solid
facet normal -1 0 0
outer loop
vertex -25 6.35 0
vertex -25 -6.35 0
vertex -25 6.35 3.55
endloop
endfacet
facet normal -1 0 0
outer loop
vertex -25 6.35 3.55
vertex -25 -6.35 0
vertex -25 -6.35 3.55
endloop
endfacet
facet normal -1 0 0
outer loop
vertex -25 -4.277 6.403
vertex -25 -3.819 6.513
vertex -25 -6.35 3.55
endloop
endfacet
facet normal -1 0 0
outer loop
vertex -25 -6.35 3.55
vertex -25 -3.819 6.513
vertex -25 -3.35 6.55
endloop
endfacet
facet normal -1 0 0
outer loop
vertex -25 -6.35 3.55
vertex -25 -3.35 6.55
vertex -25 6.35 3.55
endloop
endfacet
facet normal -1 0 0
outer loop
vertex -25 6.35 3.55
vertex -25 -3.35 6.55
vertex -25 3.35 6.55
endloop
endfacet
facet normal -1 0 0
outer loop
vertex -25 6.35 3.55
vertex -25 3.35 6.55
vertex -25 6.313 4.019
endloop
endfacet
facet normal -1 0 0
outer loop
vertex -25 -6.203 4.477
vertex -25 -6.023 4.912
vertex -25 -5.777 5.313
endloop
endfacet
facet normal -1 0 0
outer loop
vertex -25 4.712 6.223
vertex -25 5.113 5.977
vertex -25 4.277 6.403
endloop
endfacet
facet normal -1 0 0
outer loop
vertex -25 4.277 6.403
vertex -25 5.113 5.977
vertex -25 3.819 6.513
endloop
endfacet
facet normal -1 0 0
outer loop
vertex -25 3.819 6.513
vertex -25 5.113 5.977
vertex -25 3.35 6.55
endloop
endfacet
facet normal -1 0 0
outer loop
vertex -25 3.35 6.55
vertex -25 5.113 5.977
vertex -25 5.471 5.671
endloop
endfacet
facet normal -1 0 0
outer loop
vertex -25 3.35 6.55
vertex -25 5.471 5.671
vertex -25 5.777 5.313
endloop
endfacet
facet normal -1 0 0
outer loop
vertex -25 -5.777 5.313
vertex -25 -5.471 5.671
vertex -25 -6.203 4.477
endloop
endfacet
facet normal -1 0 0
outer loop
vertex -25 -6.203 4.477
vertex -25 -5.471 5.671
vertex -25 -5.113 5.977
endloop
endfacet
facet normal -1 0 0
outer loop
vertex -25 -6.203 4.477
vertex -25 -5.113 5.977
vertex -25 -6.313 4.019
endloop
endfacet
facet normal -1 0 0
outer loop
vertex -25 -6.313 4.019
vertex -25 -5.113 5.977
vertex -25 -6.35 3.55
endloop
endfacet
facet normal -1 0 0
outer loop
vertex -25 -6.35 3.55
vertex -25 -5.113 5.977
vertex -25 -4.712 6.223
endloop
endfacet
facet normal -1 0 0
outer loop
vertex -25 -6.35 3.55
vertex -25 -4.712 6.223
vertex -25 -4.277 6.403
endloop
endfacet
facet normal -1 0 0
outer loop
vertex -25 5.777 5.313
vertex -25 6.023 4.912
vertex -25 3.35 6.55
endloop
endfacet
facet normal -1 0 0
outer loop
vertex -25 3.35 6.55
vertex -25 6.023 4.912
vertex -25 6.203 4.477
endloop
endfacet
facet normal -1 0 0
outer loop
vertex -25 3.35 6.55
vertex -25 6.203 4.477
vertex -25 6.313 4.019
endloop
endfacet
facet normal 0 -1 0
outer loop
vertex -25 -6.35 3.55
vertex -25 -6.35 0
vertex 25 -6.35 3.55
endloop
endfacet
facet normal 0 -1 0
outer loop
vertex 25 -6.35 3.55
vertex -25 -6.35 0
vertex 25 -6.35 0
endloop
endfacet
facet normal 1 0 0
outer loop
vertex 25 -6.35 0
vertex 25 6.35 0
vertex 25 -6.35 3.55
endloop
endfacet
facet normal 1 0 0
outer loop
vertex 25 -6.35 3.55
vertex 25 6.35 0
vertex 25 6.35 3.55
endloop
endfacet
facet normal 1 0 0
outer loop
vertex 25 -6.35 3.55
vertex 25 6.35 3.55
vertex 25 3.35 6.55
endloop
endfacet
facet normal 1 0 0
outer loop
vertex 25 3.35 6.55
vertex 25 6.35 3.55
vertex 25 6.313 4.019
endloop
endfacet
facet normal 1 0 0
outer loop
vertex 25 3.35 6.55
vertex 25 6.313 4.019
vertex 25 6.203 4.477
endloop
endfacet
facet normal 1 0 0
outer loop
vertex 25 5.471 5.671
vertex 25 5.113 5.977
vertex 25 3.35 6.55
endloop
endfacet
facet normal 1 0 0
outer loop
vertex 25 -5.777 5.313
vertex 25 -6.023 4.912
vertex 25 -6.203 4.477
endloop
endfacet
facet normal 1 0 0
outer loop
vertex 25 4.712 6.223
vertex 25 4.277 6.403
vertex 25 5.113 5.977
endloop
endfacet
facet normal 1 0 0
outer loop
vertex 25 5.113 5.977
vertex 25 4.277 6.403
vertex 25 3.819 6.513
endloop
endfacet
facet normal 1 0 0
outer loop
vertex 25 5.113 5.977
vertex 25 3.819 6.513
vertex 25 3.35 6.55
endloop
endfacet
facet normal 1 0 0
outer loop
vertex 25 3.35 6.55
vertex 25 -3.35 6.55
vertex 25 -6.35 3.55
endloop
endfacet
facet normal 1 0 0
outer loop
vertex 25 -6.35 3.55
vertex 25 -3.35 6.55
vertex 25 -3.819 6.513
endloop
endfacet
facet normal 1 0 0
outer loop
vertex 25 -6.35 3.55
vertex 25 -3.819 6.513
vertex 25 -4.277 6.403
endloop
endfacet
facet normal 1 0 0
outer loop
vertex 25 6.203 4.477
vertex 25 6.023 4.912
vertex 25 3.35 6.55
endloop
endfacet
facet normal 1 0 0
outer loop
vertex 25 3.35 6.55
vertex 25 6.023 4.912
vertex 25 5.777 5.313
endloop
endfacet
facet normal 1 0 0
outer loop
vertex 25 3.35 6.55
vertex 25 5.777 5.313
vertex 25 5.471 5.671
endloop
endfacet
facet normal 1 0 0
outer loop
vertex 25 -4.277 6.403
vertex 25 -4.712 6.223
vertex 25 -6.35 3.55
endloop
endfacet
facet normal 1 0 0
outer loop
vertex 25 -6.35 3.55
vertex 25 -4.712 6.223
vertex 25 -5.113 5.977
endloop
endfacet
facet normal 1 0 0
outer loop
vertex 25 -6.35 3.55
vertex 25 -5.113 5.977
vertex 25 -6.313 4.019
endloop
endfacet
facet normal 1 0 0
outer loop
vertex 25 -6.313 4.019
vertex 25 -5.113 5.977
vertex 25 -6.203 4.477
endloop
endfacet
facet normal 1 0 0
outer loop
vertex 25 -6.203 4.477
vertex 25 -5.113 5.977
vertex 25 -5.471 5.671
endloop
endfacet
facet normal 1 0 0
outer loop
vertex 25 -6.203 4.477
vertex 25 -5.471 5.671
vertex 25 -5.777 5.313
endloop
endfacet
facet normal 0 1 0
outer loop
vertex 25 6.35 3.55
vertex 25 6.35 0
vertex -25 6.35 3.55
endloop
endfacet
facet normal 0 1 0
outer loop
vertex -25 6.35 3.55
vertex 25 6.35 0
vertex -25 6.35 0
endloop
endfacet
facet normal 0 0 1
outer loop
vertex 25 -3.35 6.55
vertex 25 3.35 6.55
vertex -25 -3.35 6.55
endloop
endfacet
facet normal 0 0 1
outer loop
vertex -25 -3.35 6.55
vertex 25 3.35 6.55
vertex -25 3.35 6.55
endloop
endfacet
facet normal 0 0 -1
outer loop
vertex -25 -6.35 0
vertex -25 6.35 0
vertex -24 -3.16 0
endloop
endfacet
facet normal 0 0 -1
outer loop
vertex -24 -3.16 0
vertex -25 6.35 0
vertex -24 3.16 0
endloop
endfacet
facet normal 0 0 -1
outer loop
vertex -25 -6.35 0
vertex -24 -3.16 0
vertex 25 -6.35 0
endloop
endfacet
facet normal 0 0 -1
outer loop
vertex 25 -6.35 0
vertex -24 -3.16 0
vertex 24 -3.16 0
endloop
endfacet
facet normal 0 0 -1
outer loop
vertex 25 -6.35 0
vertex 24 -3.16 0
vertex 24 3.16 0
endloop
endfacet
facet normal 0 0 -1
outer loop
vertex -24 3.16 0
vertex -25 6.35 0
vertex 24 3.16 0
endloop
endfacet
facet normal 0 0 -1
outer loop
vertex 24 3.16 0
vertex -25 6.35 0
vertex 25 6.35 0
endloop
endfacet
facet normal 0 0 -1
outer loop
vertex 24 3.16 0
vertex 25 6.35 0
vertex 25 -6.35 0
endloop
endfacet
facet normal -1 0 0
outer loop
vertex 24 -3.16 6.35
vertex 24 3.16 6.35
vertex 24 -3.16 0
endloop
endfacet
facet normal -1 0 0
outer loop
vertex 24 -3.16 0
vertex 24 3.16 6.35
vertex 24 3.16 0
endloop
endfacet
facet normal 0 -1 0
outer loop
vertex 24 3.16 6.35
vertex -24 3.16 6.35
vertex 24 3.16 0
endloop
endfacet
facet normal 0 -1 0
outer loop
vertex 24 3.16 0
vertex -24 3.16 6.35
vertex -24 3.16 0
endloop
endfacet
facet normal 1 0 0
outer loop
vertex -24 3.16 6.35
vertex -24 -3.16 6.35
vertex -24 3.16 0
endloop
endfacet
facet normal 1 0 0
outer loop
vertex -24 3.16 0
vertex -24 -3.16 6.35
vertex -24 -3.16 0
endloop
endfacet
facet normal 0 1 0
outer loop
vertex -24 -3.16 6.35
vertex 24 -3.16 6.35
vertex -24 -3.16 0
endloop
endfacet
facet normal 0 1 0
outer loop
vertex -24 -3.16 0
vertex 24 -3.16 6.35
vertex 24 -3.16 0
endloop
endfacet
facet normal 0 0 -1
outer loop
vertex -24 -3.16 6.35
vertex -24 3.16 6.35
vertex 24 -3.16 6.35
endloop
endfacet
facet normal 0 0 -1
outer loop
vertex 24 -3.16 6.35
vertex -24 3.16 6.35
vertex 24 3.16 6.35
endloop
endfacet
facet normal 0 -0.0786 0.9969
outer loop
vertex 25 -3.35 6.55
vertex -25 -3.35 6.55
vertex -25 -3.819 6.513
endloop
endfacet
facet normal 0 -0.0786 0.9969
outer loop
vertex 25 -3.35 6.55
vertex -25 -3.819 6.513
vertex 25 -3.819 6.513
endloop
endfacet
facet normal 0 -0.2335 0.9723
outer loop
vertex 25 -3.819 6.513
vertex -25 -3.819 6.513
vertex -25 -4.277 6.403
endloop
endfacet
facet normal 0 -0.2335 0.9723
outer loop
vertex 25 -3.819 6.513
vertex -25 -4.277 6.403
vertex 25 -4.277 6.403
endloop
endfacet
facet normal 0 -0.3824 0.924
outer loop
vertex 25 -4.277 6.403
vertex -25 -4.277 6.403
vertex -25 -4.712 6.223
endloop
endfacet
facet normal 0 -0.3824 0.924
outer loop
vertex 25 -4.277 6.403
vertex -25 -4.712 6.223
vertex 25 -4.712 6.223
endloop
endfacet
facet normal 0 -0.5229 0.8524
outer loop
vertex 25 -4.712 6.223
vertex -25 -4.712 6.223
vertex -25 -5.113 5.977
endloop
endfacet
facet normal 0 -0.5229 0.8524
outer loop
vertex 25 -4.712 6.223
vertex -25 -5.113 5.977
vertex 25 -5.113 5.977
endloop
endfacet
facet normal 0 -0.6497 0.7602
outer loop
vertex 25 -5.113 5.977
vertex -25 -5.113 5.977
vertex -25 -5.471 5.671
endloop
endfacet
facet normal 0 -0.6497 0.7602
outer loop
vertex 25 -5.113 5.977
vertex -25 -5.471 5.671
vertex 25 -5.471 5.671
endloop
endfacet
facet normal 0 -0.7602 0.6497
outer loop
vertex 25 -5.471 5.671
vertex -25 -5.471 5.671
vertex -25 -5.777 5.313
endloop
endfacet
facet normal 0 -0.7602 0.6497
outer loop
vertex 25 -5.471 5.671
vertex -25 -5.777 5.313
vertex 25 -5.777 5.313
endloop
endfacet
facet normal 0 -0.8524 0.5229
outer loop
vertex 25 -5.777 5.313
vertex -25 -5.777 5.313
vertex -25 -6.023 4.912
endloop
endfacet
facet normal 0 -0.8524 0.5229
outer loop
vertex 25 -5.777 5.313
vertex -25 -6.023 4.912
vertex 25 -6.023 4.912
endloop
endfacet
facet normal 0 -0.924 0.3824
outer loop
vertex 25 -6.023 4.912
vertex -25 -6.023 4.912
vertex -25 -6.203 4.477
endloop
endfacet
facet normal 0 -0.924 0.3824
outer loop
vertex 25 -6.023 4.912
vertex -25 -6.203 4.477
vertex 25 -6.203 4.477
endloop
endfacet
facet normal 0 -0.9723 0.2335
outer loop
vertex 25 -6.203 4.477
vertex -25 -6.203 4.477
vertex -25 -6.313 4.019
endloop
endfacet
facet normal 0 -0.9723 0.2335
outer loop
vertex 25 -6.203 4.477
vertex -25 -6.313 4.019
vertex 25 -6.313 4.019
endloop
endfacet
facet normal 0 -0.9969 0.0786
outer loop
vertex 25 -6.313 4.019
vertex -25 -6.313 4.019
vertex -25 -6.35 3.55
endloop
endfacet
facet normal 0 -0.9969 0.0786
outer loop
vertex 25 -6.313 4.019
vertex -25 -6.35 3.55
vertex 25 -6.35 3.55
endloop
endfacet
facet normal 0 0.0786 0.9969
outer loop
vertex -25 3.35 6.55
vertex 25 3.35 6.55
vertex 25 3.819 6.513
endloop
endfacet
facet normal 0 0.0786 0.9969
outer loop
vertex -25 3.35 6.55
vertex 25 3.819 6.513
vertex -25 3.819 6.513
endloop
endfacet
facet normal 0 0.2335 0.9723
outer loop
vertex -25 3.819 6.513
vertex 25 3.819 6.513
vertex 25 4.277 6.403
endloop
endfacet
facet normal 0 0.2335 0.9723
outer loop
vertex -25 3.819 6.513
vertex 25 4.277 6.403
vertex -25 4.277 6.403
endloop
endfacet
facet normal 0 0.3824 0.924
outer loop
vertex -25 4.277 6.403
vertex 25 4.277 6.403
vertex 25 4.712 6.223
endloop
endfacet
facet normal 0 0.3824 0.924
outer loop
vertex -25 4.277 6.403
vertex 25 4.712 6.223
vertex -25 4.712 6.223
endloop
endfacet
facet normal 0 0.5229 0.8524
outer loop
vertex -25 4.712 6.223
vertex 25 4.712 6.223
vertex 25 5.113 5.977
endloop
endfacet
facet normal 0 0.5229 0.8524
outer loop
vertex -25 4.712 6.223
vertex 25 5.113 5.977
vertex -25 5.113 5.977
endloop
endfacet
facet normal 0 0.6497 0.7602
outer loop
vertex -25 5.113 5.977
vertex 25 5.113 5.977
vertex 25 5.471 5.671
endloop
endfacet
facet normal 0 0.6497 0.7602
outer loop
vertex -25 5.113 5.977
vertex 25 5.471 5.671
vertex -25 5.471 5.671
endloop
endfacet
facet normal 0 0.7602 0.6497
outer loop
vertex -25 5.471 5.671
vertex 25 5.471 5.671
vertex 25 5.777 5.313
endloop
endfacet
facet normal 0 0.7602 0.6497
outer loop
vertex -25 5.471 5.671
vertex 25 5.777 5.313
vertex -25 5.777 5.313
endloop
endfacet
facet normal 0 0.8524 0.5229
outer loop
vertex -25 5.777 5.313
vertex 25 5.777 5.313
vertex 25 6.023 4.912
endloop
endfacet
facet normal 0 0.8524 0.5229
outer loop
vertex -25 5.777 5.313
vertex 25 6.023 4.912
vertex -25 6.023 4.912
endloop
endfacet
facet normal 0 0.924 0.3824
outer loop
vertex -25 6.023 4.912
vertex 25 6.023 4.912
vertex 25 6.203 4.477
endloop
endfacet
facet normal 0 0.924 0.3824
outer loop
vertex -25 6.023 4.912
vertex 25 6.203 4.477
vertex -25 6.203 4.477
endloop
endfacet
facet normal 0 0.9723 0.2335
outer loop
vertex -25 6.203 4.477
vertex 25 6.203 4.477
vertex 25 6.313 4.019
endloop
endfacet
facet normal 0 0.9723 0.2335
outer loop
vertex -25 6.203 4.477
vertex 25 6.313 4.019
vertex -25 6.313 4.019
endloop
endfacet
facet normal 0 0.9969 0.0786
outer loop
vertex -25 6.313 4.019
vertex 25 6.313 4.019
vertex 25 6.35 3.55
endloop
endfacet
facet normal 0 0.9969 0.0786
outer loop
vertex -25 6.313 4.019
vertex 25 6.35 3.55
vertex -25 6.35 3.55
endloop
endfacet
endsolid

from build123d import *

# Parameters (mm, degrees)
SKETCH1_W           = 50
SKETCH1_H           = 12.7
BOSS_EXTRUDE1_DEPTH = 6.55
SKETCH2_W           = 48
SKETCH2_H           = 6.32
CUT_EXTRUDE2_DEPTH  = 6.35
FILLET1_R           = 3


with BuildPart() as part:
    # Sketch1 → Boss-Extrude1 (new body)
    with BuildSketch(Plane.XY):
        Rectangle(SKETCH1_W, SKETCH1_H)
    extrude(amount=BOSS_EXTRUDE1_DEPTH)

    # Sketch2 → Cut-Extrude2 (cut)
    with BuildSketch(Plane(origin=(0, 0, 0), x_dir=(-1, 0, 0), z_dir=(0, 0, -1))):
        Rectangle(SKETCH2_W, SKETCH2_H)
    extrude(amount=-CUT_EXTRUDE2_DEPTH, mode=Mode.SUBTRACT)

    # Fillet1
    fillet1_edges = [part.edges().sort_by_distance(p)[0] for p in [
        (0, 6.35, 6.55),
        (0, -6.35, 6.55),
    ]]
    fillet(fillet1_edges, radius=FILLET1_R)


solid = part.part
